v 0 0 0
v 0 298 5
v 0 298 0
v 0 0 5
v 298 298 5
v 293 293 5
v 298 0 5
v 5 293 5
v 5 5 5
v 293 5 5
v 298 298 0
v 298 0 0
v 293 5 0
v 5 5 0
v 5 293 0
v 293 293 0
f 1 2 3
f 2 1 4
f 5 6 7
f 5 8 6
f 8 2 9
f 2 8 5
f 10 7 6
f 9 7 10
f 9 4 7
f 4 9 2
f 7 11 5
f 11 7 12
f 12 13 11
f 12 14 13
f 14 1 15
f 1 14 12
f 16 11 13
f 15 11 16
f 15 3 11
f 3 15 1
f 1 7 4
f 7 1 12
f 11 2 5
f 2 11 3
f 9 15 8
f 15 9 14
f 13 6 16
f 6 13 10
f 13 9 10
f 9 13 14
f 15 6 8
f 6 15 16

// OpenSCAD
$fn=200;

THICK = 5;

BOX_W = 288;
BOX_L = 288; //320;
BOX_H = 5;

TILE_L = 7;

difference() {
    cube(size = [
        BOX_W + (THICK * 2),
        BOX_L + (THICK * 2), 
        BOX_H]);

    translate([
        THICK, 
        THICK, 
        -10]) {
            
        cube(size = [
            BOX_W,
            BOX_L,
            100]);
    }
}
